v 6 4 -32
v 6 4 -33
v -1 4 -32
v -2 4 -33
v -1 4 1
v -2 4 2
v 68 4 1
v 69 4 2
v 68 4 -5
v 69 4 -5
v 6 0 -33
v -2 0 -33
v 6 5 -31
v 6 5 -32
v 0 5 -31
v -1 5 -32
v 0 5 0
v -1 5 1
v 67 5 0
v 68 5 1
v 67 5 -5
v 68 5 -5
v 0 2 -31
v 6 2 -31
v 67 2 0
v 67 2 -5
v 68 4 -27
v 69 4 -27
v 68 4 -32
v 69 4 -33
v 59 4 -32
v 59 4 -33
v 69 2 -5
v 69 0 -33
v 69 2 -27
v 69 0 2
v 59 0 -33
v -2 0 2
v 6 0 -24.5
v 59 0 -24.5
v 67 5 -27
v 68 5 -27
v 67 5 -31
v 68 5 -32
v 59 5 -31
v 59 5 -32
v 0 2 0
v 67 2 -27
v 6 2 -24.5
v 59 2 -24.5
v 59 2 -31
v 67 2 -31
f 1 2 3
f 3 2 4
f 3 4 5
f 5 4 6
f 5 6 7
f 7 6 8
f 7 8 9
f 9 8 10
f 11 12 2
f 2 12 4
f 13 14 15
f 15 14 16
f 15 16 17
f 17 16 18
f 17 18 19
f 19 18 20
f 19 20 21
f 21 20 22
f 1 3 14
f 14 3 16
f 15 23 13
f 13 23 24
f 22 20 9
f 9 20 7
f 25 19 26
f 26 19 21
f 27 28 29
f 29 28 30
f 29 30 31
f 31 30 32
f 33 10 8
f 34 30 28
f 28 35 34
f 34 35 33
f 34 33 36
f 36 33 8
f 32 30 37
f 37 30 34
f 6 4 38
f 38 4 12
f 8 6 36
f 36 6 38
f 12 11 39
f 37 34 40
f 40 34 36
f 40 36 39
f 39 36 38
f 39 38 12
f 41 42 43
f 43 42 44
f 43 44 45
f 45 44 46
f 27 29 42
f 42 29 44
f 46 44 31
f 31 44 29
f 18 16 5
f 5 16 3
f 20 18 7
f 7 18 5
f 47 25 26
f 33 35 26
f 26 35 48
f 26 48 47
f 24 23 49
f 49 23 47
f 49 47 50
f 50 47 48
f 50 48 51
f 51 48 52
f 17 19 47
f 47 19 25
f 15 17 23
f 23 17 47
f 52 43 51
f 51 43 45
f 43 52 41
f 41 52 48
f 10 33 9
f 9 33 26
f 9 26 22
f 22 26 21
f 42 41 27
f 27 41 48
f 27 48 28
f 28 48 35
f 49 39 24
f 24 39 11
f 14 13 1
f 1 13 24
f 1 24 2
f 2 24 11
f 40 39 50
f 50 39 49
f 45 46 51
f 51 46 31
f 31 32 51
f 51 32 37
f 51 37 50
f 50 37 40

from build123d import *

# Parameters (mm, degrees)
SKETCH1_W           = 71
SKETCH1_H           = 35
BOSS_EXTRUDE1_DEPTH = 2
SKETCH2_W           = 71
SKETCH2_H           = 35
SKETCH2_W_2         = 67
SKETCH2_H_2         = 31
BOSS_EXTRUDE2_DEPTH = 2
SKETCH3_W           = 69
SKETCH3_H           = 33
SKETCH3_W_2         = 67
SKETCH3_H_2         = 31
BOSS_EXTRUDE3_DEPTH = 1
SKETCH4_W           = 22
SKETCH4_H           = 3
CUT_EXTRUDE1_DEPTH  = 5
SKETCH5_W           = 53
SKETCH5_H           = 8.5
CUT_EXTRUDE2_DEPTH  = 5


with BuildPart() as part:
    # Sketch1 → Boss-Extrude1 (new body)
    with BuildSketch(Plane(origin=(0, 0, 0), x_dir=(1, 0, 0), z_dir=(0, 1, 0))):
        with Locations((33.5, 15.5)):
            Rectangle(SKETCH1_W, SKETCH1_H)
    extrude(amount=BOSS_EXTRUDE1_DEPTH)

    # Sketch2 → Boss-Extrude2 (add)
    with BuildSketch(Plane(origin=(0, 2, 0), x_dir=(1, 0, 0), z_dir=(0, 1, 0))):
        with Locations((33.5, 15.5)):
            Rectangle(SKETCH2_W, SKETCH2_H)
        with Locations((33.5, 15.5)):
            Rectangle(SKETCH2_W_2, SKETCH2_H_2, mode=Mode.SUBTRACT)
    extrude(amount=BOSS_EXTRUDE2_DEPTH)

    # Sketch3 → Boss-Extrude3 (add)
    with BuildSketch(Plane(origin=(0, 4, 0), x_dir=(1, 0, 0), z_dir=(0, 1, 0))):
        with Locations((33.5, 15.5)):
            Rectangle(SKETCH3_W, SKETCH3_H)
        with Locations((33.5, 15.5)):
            Rectangle(SKETCH3_W_2, SKETCH3_H_2, mode=Mode.SUBTRACT)
    extrude(amount=BOSS_EXTRUDE3_DEPTH)

    # Sketch4 → Cut-Extrude1 (cut)
    with BuildSketch(Plane.ZY.offset(-67)):
        with Locations((-16, 3.5)):
            Rectangle(SKETCH4_W, SKETCH4_H)
    extrude(amount=-CUT_EXTRUDE1_DEPTH, mode=Mode.SUBTRACT)

    # Sketch5 → Cut-Extrude2 (cut)
    with BuildSketch(Plane.XZ):
        with Locations((32.5, -28.75)):
            Rectangle(SKETCH5_W, SKETCH5_H)
    extrude(amount=-CUT_EXTRUDE2_DEPTH, mode=Mode.SUBTRACT)


solid = part.part
